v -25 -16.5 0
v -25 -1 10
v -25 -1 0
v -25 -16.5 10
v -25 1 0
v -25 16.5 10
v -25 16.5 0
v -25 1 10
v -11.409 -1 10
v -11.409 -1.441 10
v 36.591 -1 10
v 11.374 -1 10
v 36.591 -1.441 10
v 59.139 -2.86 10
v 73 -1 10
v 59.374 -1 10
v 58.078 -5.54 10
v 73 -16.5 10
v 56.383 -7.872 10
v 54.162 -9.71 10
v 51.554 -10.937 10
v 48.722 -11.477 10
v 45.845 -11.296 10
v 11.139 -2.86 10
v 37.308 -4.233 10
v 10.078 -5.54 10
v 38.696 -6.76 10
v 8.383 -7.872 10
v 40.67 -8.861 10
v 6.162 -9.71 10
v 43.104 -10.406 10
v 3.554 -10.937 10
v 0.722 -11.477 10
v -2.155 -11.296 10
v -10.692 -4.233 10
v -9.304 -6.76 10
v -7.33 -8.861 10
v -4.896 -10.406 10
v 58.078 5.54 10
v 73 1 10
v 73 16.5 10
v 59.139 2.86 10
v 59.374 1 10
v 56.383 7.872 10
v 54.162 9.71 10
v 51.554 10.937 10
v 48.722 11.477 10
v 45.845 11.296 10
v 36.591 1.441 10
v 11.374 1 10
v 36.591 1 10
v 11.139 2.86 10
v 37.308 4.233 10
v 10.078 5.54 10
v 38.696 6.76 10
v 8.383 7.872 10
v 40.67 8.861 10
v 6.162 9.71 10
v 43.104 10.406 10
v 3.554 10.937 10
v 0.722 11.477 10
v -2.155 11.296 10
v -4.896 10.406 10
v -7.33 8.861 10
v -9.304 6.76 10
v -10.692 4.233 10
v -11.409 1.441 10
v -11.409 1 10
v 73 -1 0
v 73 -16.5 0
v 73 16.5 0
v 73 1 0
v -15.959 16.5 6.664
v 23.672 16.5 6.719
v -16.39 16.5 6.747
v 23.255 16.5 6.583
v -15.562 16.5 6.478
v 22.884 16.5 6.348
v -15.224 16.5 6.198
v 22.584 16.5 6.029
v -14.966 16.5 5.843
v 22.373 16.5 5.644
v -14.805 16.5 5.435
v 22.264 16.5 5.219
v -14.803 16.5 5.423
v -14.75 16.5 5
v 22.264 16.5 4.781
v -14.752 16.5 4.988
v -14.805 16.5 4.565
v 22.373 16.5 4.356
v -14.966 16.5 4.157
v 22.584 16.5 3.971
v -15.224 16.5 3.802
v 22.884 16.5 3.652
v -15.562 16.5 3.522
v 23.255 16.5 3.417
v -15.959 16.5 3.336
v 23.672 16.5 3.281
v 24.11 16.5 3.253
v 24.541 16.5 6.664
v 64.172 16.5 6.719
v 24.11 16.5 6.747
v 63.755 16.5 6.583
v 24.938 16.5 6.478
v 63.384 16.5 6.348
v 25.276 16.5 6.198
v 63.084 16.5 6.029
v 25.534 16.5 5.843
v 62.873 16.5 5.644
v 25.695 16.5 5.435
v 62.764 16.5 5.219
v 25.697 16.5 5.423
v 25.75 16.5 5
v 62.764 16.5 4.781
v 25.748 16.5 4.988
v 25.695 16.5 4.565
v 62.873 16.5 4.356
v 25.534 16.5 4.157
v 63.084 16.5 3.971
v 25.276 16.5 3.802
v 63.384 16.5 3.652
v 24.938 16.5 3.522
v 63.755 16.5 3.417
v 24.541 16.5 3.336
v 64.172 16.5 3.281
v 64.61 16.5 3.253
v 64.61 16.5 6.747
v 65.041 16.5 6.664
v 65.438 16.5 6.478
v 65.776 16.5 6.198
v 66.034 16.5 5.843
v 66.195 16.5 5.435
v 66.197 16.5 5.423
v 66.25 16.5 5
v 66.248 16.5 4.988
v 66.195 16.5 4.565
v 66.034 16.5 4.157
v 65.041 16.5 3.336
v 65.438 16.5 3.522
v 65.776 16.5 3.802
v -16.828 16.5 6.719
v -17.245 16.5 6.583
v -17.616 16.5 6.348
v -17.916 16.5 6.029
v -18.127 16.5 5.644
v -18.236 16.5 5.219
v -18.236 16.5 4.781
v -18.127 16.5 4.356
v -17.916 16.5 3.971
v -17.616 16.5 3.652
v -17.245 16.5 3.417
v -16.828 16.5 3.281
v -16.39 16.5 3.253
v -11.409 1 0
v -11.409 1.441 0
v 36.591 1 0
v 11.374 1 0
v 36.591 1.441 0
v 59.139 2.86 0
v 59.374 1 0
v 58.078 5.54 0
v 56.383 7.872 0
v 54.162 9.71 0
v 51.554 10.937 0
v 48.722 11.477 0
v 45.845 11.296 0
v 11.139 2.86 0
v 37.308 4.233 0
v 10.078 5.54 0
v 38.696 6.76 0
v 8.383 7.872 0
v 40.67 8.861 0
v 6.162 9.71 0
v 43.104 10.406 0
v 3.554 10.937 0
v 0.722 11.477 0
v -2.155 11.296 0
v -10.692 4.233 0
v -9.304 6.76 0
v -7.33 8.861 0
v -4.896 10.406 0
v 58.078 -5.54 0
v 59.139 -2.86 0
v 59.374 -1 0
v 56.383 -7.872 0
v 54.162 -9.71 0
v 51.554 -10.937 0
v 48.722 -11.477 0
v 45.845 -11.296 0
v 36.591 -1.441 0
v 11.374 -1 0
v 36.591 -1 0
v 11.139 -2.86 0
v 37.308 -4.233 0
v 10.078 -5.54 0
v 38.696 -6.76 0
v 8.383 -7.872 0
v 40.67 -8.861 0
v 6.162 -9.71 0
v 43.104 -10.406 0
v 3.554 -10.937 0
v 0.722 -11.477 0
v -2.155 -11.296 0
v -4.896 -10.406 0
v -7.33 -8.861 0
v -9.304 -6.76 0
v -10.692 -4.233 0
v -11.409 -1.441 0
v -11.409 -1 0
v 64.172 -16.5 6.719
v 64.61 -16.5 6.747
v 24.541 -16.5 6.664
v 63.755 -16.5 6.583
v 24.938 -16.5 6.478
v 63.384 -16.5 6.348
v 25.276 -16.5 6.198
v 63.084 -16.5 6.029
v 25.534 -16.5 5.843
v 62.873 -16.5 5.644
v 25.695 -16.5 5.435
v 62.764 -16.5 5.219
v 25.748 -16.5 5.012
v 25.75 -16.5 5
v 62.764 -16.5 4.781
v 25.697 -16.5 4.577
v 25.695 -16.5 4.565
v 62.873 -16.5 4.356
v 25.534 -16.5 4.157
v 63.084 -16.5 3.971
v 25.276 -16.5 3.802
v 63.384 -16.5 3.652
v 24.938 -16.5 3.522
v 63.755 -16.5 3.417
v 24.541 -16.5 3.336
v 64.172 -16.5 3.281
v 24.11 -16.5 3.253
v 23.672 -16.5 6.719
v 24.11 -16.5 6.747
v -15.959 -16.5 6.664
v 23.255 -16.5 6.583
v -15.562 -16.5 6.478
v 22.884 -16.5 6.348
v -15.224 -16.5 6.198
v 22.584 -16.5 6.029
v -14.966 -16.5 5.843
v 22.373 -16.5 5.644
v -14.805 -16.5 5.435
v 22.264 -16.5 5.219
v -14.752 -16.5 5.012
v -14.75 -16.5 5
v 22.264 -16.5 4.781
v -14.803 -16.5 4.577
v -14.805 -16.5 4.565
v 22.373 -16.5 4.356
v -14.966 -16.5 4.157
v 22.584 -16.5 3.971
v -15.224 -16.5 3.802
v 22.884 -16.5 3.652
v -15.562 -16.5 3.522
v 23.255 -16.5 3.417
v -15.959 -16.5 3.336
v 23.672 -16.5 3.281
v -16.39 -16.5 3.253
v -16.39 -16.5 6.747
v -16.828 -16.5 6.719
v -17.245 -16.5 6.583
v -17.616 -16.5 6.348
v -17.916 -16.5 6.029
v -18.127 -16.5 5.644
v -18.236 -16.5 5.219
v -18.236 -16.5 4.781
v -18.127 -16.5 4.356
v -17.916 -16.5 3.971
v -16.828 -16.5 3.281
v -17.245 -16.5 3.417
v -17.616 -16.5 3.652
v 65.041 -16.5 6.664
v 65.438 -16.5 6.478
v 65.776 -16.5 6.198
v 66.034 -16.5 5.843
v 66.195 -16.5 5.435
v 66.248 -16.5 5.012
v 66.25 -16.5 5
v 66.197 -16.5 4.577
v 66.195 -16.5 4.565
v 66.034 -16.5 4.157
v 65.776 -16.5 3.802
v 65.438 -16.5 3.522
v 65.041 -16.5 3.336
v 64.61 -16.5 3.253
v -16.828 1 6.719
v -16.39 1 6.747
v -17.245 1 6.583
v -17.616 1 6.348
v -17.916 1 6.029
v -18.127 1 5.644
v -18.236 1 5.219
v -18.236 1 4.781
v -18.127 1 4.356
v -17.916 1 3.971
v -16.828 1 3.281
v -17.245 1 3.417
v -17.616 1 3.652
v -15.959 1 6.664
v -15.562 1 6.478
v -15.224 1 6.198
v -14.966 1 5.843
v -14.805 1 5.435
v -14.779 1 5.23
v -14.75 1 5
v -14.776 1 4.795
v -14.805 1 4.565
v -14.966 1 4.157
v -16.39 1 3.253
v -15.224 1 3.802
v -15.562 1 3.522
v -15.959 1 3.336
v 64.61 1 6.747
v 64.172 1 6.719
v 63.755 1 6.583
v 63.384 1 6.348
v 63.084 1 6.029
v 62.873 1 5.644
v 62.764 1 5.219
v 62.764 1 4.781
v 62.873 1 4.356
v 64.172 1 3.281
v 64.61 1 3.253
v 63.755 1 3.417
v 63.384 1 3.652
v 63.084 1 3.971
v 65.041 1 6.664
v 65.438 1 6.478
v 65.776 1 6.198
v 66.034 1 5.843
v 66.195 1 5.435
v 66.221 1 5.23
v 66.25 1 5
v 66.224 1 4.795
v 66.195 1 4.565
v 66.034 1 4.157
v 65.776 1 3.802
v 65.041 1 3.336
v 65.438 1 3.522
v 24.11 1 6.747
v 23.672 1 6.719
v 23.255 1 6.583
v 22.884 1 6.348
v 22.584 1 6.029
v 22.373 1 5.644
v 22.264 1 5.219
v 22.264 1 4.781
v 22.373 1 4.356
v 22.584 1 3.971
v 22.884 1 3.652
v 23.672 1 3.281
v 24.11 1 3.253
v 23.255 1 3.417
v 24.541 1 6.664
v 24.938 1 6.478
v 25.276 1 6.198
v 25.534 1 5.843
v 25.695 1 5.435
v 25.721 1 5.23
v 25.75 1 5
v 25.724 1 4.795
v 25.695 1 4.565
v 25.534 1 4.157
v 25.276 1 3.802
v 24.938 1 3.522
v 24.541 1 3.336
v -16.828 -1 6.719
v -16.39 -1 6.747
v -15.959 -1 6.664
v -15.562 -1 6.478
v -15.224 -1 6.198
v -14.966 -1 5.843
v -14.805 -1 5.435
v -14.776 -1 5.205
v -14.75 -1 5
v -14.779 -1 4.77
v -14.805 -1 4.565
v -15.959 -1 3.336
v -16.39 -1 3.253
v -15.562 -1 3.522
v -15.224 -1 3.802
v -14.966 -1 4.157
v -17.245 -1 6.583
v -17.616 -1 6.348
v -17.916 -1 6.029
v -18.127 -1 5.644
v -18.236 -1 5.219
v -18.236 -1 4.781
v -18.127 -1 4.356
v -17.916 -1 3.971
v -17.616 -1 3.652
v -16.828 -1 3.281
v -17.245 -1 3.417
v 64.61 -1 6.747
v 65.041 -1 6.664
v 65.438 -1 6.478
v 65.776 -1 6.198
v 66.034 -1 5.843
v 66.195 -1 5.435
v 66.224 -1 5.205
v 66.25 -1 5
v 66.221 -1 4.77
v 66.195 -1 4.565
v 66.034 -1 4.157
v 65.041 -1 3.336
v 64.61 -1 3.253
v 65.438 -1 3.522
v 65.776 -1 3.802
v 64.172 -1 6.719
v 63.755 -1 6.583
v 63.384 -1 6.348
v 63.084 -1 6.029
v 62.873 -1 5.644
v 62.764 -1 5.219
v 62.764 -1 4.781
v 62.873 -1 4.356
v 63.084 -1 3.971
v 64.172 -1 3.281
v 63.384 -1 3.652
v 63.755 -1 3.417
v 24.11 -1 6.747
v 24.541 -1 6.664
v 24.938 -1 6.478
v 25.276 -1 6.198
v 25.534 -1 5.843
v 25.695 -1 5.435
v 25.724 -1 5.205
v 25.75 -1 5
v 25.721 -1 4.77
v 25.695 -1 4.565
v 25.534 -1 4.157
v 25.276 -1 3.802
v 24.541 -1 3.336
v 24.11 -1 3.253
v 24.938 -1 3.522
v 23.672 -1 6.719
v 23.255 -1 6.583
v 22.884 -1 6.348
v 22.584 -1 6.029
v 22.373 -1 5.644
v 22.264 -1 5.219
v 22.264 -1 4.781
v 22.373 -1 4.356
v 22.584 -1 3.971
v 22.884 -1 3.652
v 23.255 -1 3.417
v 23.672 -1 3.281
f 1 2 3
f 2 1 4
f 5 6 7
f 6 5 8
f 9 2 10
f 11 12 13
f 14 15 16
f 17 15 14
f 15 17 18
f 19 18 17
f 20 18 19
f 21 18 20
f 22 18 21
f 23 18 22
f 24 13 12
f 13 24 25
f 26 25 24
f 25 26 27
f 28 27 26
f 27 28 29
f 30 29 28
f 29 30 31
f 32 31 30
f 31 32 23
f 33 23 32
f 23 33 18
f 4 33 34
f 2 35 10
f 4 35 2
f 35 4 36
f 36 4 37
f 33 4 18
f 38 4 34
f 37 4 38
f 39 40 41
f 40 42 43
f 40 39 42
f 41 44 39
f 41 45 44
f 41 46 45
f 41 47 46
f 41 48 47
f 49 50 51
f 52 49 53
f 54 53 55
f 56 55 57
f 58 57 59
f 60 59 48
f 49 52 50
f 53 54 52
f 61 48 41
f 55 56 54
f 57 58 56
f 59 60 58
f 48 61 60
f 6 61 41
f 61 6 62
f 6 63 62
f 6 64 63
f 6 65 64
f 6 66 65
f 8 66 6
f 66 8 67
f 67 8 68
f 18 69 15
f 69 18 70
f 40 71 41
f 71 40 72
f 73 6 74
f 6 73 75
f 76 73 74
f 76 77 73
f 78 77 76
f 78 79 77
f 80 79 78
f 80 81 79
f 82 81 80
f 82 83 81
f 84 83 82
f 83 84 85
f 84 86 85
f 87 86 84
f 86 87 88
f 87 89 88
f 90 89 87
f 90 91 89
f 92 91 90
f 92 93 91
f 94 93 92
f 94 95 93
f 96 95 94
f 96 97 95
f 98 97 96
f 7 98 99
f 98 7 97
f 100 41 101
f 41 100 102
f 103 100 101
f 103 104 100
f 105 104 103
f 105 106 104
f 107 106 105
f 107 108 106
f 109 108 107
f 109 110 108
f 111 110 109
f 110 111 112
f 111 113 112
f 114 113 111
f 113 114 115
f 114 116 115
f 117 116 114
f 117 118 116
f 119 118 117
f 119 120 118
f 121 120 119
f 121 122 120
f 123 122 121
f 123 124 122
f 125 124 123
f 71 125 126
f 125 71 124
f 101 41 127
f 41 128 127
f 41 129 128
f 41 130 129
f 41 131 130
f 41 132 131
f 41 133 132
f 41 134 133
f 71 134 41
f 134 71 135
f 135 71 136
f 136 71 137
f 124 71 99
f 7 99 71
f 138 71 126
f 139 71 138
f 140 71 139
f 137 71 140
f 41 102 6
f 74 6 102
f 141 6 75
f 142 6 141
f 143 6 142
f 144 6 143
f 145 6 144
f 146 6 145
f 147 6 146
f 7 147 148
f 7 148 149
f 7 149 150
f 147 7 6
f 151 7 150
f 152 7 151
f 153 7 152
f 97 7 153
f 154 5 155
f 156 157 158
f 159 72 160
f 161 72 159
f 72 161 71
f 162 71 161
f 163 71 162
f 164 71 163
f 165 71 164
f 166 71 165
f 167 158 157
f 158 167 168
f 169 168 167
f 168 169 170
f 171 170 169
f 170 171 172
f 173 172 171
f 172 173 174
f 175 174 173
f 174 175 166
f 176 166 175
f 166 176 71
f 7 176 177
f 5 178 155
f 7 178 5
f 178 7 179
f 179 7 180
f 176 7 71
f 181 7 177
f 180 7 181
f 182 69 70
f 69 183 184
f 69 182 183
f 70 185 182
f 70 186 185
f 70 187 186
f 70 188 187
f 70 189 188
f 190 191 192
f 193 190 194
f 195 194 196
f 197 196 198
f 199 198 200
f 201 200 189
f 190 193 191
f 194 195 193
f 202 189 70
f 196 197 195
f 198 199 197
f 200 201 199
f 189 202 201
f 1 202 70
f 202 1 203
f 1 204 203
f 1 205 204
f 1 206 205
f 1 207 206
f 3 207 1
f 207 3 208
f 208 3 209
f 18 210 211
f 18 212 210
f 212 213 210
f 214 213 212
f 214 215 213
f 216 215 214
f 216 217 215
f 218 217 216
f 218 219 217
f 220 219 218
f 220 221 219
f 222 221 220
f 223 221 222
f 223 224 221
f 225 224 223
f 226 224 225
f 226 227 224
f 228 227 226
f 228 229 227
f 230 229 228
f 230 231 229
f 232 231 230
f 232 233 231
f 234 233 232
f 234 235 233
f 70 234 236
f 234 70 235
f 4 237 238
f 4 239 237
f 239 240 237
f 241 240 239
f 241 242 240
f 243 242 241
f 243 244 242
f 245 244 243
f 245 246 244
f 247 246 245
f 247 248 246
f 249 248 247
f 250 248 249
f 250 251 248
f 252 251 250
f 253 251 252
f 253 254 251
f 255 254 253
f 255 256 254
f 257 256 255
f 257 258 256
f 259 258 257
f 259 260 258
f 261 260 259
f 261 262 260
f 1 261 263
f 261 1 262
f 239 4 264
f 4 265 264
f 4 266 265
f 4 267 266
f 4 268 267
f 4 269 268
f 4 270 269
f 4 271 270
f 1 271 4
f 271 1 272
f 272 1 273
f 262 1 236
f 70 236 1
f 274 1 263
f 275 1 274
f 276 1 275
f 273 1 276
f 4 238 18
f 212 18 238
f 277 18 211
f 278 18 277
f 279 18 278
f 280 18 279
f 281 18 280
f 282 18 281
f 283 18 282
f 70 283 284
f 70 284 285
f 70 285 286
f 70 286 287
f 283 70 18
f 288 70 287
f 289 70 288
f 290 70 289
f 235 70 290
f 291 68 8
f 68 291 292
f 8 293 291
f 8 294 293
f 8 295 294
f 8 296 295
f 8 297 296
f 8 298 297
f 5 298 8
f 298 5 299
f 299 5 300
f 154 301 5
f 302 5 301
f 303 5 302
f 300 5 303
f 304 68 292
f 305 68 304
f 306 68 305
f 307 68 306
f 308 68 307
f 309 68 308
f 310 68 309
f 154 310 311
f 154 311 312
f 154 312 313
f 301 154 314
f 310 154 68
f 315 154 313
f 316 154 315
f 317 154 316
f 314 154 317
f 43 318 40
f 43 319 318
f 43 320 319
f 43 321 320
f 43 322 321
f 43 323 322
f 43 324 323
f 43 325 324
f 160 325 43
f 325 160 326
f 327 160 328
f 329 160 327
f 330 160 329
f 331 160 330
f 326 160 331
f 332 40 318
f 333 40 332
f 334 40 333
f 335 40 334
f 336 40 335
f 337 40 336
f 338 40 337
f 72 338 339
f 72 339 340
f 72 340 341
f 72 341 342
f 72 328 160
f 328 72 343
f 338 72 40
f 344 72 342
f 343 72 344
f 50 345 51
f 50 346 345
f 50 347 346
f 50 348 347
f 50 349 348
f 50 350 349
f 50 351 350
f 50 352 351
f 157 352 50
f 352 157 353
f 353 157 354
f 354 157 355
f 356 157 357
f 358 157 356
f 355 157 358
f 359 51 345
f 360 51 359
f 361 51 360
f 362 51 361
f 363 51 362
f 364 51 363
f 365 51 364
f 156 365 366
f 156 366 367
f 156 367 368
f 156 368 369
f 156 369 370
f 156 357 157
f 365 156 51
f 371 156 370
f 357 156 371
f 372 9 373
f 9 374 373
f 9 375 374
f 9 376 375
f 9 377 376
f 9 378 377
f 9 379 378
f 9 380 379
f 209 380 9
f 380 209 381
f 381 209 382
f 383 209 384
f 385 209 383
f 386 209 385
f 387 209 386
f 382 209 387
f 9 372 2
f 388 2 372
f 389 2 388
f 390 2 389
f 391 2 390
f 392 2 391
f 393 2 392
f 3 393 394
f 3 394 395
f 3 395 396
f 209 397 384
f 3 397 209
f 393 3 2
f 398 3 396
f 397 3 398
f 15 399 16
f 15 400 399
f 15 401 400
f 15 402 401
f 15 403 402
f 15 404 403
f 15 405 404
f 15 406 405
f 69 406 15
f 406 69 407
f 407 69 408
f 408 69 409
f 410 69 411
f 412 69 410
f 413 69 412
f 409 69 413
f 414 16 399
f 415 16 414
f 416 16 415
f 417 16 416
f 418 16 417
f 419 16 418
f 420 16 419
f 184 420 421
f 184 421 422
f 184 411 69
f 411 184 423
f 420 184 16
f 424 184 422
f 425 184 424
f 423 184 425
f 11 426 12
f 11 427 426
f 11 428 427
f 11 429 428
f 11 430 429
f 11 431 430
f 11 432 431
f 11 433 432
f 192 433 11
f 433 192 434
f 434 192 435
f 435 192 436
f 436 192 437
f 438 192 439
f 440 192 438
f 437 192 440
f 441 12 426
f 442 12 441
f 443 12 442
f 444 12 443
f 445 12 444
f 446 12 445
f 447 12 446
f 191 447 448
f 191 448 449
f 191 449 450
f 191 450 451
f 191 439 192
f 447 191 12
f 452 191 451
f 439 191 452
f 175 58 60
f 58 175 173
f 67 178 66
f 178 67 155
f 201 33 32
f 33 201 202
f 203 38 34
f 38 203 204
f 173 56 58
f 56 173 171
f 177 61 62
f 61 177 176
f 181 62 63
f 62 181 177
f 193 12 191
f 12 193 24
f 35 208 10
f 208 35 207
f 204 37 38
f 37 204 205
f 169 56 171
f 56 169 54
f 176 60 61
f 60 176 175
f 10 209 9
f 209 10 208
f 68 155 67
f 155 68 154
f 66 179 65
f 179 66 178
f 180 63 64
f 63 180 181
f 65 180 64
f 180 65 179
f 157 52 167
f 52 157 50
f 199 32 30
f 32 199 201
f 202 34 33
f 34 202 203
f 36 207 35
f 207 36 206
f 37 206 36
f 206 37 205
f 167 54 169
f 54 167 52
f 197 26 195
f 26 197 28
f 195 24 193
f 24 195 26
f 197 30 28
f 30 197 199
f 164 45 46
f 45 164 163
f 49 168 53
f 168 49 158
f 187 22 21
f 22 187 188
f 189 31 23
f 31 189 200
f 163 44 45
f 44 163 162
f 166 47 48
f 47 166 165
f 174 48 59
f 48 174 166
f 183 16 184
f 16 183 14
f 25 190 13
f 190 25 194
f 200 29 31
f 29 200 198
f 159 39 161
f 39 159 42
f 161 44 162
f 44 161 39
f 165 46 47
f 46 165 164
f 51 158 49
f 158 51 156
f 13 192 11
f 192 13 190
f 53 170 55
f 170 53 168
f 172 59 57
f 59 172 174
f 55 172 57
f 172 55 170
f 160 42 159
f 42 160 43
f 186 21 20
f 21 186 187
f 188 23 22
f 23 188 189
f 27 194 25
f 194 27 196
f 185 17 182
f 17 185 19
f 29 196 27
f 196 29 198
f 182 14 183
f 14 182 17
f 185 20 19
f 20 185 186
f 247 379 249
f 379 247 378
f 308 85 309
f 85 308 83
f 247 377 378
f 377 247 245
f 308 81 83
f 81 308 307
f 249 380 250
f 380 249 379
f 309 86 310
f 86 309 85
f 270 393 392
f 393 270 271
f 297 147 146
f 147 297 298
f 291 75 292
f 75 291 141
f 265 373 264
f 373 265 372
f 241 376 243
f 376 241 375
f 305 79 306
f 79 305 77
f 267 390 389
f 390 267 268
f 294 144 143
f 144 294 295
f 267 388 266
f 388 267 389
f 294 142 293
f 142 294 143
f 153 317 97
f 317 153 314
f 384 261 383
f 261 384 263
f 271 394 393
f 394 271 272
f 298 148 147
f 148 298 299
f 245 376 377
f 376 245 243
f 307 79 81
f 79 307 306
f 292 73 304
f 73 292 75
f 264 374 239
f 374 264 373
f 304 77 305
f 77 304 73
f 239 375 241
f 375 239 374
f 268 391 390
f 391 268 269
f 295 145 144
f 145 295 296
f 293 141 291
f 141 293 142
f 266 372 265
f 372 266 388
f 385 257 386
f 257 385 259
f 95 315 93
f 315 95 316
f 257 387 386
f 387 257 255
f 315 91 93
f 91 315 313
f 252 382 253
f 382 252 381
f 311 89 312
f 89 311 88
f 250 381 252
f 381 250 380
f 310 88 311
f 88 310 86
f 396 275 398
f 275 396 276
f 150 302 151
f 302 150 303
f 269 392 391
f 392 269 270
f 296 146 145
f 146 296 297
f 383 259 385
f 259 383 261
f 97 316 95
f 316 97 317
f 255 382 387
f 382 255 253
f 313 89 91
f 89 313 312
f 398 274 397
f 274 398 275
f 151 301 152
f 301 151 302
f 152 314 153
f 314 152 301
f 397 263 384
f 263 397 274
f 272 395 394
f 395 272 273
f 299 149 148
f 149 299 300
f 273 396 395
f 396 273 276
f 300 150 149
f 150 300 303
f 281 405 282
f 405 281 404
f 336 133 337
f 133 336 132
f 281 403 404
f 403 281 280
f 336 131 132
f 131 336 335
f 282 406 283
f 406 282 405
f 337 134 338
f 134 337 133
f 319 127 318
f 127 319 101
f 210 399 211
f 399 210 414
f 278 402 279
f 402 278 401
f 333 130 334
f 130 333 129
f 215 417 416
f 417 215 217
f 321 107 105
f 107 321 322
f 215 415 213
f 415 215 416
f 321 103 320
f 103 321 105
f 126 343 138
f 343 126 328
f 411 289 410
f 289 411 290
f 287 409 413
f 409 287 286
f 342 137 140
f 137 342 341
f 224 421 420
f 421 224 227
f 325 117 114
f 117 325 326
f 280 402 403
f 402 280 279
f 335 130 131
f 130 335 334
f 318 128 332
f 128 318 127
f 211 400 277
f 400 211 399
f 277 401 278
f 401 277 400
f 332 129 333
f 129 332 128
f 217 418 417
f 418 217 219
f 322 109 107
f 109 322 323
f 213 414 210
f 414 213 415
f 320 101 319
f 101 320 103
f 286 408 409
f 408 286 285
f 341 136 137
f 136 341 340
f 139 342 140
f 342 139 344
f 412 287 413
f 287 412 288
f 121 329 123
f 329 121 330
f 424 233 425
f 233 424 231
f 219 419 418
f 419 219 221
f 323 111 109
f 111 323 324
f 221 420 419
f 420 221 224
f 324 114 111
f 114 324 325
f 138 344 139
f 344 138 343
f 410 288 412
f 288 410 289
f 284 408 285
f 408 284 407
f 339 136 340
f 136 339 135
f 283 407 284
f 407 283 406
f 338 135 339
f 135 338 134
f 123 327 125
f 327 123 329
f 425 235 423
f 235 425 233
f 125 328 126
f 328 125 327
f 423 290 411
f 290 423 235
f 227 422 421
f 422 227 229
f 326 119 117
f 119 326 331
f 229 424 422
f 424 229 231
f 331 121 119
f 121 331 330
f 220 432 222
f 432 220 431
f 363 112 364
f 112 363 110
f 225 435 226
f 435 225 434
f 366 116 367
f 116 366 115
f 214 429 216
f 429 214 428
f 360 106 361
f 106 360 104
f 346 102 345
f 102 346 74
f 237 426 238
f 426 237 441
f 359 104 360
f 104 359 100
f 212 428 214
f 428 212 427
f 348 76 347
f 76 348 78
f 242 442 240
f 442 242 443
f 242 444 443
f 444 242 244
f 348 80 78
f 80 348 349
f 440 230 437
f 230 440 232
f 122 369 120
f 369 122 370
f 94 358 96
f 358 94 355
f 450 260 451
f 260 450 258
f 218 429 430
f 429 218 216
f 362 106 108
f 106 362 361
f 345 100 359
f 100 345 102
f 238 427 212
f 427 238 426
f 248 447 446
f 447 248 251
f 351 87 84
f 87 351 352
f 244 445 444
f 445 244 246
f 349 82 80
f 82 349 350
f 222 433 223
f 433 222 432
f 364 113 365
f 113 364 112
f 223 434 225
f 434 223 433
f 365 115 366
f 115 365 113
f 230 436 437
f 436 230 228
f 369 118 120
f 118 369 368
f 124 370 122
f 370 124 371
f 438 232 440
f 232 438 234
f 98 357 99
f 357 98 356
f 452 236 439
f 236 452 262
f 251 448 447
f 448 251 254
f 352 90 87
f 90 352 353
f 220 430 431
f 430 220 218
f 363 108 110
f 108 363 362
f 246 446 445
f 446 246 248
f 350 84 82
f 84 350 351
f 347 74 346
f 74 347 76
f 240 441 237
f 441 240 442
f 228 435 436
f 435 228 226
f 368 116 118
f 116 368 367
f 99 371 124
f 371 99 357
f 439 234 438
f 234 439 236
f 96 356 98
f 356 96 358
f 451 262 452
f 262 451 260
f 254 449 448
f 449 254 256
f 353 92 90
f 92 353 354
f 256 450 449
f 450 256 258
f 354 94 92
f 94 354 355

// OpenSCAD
pipe_dia = 23.0;
pipe_dist = 25.0;
hole_dia = 3.5;
wall = 5.0;
height = 10.0;
cut = 2.0;

$fn = 25;

difference() {
    translate([-(pipe_dia / 2) - (2 * wall) - hole_dia, -(pipe_dia / 2) - wall, 0])
        cube([pipe_dist + (2 * pipe_dia) + (4 * wall) + (2 * hole_dia), pipe_dia + (2 * wall), height]);
    
    translate([-(pipe_dia / 2) - (2 * wall) - hole_dia - 1, -cut / 2, -1])
        cube([pipe_dist + (2 * pipe_dia) + (4 * wall) + (2 * hole_dia) + 2, cut, height + 2]);

    translate([0, 0, -1])
        cylinder(d = pipe_dia, h = height + 2);
    translate([pipe_dist + pipe_dia, 0, -1])
        cylinder(d = pipe_dia, h = height + 2);
    
    rotate([90, 0, 0])
        translate([-pipe_dia / 2 - wall, height / 2, -pipe_dia / 2 - wall - 1])
        cylinder(d = hole_dia, h = pipe_dia + (2 * wall) + 2);
    rotate([90, 0, 0])
        translate([pipe_dist + (pipe_dia * 3 / 2) + wall, height / 2, -pipe_dia / 2 - wall - 1])
        cylinder(d = hole_dia, h = pipe_dia + (2 * wall) + 2);
    rotate([90, 0, 0])
        translate([(pipe_dist + pipe_dia) / 2, height / 2, -pipe_dia / 2 - wall - 1])
        cylinder(d = hole_dia, h = pipe_dia + (2 * wall) + 2);
}
